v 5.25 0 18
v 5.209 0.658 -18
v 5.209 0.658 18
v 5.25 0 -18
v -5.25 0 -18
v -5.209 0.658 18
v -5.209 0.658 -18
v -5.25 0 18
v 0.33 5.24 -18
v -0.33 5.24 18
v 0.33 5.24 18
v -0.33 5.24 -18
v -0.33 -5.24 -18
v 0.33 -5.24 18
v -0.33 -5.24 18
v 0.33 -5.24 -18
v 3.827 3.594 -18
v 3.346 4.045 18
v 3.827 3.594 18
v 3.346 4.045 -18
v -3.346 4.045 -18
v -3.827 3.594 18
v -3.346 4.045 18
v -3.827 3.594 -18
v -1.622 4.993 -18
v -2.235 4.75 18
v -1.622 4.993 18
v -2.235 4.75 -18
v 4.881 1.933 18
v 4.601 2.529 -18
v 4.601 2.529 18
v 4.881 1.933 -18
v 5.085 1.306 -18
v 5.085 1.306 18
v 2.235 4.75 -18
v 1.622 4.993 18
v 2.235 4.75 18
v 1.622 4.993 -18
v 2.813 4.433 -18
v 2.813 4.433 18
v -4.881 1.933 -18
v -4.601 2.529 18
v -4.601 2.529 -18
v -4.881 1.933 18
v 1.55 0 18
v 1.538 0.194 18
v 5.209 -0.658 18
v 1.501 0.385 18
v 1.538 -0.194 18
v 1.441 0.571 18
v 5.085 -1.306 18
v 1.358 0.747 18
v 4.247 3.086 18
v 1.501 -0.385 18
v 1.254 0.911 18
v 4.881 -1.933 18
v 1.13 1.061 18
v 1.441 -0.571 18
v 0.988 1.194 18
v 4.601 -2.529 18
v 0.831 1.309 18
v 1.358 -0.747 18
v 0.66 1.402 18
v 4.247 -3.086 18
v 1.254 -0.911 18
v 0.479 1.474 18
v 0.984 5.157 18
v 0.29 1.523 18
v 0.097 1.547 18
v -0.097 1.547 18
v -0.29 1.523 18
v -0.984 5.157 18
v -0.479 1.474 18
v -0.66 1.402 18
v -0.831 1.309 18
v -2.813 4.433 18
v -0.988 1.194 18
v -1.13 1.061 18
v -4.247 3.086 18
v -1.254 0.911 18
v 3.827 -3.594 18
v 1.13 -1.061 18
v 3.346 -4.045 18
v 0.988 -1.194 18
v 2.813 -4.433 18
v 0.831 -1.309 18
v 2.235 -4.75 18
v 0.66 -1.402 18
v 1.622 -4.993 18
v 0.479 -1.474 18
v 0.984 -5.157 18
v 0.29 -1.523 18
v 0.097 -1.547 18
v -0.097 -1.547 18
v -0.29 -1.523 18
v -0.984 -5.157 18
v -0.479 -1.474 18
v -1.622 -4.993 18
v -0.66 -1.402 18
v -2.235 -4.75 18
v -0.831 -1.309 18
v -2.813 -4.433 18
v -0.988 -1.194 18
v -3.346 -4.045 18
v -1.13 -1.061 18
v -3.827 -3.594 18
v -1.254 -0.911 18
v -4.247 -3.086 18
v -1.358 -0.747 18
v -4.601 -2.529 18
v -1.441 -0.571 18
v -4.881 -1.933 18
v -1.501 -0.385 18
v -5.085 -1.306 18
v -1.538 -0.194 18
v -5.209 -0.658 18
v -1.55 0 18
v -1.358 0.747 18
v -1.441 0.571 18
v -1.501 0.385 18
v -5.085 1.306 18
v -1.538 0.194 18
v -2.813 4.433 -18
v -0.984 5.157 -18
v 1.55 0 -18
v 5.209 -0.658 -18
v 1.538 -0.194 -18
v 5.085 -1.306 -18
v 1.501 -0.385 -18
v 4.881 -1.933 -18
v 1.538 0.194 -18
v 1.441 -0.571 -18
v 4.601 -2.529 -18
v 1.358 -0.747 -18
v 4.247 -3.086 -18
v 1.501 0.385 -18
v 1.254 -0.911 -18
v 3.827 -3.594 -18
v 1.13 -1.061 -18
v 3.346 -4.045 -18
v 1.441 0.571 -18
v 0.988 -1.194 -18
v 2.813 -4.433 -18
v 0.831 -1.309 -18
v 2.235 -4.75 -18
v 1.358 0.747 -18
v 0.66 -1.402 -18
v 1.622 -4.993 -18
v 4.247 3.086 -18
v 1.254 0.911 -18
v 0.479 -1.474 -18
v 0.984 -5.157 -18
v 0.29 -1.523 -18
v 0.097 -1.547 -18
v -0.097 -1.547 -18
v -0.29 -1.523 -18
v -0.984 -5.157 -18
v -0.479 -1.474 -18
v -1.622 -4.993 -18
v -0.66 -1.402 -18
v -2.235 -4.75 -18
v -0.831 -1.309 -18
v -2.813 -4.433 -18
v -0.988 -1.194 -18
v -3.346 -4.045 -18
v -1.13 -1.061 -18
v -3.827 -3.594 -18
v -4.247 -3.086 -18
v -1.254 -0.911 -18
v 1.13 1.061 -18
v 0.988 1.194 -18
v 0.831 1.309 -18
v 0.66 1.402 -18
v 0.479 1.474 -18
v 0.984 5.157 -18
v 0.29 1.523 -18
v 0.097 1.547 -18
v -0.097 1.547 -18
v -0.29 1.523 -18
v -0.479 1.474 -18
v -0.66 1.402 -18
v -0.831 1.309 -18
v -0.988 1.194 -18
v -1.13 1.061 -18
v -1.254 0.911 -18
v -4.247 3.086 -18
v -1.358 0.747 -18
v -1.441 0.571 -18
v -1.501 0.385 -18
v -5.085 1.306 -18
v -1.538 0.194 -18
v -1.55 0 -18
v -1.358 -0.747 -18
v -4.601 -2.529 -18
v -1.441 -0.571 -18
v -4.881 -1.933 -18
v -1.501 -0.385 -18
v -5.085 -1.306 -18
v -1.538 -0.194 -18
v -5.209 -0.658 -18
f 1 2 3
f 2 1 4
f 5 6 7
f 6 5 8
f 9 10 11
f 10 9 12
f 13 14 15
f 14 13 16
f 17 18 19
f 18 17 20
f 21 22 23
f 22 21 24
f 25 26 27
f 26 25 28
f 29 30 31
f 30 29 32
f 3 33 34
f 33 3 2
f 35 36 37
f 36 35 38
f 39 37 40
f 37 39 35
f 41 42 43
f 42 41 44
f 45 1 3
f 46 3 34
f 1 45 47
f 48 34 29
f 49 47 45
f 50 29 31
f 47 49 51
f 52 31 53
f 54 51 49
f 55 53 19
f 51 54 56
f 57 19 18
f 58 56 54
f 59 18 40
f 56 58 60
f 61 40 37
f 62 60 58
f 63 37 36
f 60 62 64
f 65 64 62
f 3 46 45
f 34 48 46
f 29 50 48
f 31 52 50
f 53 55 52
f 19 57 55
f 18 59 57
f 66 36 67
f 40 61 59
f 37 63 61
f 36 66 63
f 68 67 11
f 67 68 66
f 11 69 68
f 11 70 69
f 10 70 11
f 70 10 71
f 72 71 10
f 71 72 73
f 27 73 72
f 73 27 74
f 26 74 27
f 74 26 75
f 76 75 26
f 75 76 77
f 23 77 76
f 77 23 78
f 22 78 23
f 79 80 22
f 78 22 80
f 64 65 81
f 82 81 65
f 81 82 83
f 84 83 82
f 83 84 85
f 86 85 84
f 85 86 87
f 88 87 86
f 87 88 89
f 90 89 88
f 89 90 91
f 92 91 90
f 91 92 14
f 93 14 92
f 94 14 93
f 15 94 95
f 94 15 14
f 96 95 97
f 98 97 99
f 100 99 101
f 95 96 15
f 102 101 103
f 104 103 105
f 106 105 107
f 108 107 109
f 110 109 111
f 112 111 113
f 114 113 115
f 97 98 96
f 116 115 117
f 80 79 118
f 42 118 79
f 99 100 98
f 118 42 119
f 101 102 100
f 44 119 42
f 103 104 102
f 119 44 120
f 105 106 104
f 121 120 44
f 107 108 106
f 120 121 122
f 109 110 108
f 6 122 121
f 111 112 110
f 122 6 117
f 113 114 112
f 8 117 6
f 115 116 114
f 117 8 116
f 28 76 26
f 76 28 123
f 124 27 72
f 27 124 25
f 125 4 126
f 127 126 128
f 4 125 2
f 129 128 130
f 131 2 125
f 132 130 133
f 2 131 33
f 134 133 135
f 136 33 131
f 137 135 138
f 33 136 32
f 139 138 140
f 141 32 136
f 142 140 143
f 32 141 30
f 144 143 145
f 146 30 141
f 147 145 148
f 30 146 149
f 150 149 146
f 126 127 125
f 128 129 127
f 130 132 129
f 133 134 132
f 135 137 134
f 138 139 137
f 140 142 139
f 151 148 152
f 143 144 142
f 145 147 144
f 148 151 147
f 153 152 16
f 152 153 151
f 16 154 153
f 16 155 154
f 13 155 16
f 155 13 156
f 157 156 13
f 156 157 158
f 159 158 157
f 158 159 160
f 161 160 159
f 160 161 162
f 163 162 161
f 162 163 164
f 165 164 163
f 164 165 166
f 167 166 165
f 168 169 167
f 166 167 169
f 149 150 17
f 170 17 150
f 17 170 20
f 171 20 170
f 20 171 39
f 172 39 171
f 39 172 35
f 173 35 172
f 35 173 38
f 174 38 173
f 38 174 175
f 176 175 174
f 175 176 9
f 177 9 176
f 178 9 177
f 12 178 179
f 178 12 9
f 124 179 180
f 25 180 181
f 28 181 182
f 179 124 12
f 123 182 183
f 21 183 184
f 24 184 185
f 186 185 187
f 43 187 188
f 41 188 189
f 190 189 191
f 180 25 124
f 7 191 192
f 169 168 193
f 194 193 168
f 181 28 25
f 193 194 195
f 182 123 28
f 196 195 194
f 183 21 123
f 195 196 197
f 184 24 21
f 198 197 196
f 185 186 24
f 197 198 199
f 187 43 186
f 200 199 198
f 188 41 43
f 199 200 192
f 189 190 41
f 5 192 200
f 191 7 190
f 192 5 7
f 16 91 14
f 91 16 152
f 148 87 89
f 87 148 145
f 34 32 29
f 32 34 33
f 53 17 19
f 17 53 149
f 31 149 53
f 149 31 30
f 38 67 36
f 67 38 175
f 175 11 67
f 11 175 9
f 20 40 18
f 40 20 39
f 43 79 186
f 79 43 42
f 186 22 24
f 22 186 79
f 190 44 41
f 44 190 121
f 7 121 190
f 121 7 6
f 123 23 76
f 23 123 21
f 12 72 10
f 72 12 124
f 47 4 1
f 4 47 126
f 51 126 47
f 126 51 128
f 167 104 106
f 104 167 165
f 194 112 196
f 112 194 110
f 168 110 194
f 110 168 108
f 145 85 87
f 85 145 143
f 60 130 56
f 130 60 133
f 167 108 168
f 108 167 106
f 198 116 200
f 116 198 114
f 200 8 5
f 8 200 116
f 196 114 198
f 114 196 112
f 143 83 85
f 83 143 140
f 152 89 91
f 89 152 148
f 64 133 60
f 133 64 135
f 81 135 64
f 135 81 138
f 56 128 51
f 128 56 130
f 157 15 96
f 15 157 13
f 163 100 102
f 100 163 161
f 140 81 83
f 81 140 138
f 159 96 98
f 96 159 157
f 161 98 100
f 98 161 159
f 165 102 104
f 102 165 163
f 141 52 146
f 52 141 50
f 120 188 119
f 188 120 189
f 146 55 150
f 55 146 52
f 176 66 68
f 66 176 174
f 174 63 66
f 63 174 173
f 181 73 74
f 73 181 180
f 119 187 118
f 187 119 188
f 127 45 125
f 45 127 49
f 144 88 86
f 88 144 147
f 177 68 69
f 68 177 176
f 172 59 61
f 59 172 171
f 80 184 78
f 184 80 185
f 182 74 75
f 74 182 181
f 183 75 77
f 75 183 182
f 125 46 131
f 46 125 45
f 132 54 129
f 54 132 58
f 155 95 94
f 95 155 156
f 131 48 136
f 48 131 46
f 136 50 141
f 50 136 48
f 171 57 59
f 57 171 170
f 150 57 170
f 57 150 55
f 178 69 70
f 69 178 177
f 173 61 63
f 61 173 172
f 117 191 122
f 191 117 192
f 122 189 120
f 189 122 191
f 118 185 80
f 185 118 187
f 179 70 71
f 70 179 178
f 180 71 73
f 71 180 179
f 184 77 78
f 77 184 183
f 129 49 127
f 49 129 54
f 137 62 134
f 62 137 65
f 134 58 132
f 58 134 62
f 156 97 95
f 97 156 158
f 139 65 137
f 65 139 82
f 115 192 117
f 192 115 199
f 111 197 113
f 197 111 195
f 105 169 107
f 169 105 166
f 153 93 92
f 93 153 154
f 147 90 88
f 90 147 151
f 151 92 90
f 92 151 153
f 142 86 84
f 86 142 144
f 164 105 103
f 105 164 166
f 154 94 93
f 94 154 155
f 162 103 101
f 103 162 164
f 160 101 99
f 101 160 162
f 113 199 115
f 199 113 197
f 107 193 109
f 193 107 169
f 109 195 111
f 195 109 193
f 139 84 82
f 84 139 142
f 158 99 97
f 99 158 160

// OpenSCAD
$fn = 50;


difference() {
	union() {
		translate(v = [0, 0, -18.0000000000]) {
			cylinder(h = 36, r = 5.2500000000);
		}
	}
	union() {
		translate(v = [0, 0, -100.0000000000]) {
			cylinder(h = 200, r = 1.5500000000);
		}
	}
}
